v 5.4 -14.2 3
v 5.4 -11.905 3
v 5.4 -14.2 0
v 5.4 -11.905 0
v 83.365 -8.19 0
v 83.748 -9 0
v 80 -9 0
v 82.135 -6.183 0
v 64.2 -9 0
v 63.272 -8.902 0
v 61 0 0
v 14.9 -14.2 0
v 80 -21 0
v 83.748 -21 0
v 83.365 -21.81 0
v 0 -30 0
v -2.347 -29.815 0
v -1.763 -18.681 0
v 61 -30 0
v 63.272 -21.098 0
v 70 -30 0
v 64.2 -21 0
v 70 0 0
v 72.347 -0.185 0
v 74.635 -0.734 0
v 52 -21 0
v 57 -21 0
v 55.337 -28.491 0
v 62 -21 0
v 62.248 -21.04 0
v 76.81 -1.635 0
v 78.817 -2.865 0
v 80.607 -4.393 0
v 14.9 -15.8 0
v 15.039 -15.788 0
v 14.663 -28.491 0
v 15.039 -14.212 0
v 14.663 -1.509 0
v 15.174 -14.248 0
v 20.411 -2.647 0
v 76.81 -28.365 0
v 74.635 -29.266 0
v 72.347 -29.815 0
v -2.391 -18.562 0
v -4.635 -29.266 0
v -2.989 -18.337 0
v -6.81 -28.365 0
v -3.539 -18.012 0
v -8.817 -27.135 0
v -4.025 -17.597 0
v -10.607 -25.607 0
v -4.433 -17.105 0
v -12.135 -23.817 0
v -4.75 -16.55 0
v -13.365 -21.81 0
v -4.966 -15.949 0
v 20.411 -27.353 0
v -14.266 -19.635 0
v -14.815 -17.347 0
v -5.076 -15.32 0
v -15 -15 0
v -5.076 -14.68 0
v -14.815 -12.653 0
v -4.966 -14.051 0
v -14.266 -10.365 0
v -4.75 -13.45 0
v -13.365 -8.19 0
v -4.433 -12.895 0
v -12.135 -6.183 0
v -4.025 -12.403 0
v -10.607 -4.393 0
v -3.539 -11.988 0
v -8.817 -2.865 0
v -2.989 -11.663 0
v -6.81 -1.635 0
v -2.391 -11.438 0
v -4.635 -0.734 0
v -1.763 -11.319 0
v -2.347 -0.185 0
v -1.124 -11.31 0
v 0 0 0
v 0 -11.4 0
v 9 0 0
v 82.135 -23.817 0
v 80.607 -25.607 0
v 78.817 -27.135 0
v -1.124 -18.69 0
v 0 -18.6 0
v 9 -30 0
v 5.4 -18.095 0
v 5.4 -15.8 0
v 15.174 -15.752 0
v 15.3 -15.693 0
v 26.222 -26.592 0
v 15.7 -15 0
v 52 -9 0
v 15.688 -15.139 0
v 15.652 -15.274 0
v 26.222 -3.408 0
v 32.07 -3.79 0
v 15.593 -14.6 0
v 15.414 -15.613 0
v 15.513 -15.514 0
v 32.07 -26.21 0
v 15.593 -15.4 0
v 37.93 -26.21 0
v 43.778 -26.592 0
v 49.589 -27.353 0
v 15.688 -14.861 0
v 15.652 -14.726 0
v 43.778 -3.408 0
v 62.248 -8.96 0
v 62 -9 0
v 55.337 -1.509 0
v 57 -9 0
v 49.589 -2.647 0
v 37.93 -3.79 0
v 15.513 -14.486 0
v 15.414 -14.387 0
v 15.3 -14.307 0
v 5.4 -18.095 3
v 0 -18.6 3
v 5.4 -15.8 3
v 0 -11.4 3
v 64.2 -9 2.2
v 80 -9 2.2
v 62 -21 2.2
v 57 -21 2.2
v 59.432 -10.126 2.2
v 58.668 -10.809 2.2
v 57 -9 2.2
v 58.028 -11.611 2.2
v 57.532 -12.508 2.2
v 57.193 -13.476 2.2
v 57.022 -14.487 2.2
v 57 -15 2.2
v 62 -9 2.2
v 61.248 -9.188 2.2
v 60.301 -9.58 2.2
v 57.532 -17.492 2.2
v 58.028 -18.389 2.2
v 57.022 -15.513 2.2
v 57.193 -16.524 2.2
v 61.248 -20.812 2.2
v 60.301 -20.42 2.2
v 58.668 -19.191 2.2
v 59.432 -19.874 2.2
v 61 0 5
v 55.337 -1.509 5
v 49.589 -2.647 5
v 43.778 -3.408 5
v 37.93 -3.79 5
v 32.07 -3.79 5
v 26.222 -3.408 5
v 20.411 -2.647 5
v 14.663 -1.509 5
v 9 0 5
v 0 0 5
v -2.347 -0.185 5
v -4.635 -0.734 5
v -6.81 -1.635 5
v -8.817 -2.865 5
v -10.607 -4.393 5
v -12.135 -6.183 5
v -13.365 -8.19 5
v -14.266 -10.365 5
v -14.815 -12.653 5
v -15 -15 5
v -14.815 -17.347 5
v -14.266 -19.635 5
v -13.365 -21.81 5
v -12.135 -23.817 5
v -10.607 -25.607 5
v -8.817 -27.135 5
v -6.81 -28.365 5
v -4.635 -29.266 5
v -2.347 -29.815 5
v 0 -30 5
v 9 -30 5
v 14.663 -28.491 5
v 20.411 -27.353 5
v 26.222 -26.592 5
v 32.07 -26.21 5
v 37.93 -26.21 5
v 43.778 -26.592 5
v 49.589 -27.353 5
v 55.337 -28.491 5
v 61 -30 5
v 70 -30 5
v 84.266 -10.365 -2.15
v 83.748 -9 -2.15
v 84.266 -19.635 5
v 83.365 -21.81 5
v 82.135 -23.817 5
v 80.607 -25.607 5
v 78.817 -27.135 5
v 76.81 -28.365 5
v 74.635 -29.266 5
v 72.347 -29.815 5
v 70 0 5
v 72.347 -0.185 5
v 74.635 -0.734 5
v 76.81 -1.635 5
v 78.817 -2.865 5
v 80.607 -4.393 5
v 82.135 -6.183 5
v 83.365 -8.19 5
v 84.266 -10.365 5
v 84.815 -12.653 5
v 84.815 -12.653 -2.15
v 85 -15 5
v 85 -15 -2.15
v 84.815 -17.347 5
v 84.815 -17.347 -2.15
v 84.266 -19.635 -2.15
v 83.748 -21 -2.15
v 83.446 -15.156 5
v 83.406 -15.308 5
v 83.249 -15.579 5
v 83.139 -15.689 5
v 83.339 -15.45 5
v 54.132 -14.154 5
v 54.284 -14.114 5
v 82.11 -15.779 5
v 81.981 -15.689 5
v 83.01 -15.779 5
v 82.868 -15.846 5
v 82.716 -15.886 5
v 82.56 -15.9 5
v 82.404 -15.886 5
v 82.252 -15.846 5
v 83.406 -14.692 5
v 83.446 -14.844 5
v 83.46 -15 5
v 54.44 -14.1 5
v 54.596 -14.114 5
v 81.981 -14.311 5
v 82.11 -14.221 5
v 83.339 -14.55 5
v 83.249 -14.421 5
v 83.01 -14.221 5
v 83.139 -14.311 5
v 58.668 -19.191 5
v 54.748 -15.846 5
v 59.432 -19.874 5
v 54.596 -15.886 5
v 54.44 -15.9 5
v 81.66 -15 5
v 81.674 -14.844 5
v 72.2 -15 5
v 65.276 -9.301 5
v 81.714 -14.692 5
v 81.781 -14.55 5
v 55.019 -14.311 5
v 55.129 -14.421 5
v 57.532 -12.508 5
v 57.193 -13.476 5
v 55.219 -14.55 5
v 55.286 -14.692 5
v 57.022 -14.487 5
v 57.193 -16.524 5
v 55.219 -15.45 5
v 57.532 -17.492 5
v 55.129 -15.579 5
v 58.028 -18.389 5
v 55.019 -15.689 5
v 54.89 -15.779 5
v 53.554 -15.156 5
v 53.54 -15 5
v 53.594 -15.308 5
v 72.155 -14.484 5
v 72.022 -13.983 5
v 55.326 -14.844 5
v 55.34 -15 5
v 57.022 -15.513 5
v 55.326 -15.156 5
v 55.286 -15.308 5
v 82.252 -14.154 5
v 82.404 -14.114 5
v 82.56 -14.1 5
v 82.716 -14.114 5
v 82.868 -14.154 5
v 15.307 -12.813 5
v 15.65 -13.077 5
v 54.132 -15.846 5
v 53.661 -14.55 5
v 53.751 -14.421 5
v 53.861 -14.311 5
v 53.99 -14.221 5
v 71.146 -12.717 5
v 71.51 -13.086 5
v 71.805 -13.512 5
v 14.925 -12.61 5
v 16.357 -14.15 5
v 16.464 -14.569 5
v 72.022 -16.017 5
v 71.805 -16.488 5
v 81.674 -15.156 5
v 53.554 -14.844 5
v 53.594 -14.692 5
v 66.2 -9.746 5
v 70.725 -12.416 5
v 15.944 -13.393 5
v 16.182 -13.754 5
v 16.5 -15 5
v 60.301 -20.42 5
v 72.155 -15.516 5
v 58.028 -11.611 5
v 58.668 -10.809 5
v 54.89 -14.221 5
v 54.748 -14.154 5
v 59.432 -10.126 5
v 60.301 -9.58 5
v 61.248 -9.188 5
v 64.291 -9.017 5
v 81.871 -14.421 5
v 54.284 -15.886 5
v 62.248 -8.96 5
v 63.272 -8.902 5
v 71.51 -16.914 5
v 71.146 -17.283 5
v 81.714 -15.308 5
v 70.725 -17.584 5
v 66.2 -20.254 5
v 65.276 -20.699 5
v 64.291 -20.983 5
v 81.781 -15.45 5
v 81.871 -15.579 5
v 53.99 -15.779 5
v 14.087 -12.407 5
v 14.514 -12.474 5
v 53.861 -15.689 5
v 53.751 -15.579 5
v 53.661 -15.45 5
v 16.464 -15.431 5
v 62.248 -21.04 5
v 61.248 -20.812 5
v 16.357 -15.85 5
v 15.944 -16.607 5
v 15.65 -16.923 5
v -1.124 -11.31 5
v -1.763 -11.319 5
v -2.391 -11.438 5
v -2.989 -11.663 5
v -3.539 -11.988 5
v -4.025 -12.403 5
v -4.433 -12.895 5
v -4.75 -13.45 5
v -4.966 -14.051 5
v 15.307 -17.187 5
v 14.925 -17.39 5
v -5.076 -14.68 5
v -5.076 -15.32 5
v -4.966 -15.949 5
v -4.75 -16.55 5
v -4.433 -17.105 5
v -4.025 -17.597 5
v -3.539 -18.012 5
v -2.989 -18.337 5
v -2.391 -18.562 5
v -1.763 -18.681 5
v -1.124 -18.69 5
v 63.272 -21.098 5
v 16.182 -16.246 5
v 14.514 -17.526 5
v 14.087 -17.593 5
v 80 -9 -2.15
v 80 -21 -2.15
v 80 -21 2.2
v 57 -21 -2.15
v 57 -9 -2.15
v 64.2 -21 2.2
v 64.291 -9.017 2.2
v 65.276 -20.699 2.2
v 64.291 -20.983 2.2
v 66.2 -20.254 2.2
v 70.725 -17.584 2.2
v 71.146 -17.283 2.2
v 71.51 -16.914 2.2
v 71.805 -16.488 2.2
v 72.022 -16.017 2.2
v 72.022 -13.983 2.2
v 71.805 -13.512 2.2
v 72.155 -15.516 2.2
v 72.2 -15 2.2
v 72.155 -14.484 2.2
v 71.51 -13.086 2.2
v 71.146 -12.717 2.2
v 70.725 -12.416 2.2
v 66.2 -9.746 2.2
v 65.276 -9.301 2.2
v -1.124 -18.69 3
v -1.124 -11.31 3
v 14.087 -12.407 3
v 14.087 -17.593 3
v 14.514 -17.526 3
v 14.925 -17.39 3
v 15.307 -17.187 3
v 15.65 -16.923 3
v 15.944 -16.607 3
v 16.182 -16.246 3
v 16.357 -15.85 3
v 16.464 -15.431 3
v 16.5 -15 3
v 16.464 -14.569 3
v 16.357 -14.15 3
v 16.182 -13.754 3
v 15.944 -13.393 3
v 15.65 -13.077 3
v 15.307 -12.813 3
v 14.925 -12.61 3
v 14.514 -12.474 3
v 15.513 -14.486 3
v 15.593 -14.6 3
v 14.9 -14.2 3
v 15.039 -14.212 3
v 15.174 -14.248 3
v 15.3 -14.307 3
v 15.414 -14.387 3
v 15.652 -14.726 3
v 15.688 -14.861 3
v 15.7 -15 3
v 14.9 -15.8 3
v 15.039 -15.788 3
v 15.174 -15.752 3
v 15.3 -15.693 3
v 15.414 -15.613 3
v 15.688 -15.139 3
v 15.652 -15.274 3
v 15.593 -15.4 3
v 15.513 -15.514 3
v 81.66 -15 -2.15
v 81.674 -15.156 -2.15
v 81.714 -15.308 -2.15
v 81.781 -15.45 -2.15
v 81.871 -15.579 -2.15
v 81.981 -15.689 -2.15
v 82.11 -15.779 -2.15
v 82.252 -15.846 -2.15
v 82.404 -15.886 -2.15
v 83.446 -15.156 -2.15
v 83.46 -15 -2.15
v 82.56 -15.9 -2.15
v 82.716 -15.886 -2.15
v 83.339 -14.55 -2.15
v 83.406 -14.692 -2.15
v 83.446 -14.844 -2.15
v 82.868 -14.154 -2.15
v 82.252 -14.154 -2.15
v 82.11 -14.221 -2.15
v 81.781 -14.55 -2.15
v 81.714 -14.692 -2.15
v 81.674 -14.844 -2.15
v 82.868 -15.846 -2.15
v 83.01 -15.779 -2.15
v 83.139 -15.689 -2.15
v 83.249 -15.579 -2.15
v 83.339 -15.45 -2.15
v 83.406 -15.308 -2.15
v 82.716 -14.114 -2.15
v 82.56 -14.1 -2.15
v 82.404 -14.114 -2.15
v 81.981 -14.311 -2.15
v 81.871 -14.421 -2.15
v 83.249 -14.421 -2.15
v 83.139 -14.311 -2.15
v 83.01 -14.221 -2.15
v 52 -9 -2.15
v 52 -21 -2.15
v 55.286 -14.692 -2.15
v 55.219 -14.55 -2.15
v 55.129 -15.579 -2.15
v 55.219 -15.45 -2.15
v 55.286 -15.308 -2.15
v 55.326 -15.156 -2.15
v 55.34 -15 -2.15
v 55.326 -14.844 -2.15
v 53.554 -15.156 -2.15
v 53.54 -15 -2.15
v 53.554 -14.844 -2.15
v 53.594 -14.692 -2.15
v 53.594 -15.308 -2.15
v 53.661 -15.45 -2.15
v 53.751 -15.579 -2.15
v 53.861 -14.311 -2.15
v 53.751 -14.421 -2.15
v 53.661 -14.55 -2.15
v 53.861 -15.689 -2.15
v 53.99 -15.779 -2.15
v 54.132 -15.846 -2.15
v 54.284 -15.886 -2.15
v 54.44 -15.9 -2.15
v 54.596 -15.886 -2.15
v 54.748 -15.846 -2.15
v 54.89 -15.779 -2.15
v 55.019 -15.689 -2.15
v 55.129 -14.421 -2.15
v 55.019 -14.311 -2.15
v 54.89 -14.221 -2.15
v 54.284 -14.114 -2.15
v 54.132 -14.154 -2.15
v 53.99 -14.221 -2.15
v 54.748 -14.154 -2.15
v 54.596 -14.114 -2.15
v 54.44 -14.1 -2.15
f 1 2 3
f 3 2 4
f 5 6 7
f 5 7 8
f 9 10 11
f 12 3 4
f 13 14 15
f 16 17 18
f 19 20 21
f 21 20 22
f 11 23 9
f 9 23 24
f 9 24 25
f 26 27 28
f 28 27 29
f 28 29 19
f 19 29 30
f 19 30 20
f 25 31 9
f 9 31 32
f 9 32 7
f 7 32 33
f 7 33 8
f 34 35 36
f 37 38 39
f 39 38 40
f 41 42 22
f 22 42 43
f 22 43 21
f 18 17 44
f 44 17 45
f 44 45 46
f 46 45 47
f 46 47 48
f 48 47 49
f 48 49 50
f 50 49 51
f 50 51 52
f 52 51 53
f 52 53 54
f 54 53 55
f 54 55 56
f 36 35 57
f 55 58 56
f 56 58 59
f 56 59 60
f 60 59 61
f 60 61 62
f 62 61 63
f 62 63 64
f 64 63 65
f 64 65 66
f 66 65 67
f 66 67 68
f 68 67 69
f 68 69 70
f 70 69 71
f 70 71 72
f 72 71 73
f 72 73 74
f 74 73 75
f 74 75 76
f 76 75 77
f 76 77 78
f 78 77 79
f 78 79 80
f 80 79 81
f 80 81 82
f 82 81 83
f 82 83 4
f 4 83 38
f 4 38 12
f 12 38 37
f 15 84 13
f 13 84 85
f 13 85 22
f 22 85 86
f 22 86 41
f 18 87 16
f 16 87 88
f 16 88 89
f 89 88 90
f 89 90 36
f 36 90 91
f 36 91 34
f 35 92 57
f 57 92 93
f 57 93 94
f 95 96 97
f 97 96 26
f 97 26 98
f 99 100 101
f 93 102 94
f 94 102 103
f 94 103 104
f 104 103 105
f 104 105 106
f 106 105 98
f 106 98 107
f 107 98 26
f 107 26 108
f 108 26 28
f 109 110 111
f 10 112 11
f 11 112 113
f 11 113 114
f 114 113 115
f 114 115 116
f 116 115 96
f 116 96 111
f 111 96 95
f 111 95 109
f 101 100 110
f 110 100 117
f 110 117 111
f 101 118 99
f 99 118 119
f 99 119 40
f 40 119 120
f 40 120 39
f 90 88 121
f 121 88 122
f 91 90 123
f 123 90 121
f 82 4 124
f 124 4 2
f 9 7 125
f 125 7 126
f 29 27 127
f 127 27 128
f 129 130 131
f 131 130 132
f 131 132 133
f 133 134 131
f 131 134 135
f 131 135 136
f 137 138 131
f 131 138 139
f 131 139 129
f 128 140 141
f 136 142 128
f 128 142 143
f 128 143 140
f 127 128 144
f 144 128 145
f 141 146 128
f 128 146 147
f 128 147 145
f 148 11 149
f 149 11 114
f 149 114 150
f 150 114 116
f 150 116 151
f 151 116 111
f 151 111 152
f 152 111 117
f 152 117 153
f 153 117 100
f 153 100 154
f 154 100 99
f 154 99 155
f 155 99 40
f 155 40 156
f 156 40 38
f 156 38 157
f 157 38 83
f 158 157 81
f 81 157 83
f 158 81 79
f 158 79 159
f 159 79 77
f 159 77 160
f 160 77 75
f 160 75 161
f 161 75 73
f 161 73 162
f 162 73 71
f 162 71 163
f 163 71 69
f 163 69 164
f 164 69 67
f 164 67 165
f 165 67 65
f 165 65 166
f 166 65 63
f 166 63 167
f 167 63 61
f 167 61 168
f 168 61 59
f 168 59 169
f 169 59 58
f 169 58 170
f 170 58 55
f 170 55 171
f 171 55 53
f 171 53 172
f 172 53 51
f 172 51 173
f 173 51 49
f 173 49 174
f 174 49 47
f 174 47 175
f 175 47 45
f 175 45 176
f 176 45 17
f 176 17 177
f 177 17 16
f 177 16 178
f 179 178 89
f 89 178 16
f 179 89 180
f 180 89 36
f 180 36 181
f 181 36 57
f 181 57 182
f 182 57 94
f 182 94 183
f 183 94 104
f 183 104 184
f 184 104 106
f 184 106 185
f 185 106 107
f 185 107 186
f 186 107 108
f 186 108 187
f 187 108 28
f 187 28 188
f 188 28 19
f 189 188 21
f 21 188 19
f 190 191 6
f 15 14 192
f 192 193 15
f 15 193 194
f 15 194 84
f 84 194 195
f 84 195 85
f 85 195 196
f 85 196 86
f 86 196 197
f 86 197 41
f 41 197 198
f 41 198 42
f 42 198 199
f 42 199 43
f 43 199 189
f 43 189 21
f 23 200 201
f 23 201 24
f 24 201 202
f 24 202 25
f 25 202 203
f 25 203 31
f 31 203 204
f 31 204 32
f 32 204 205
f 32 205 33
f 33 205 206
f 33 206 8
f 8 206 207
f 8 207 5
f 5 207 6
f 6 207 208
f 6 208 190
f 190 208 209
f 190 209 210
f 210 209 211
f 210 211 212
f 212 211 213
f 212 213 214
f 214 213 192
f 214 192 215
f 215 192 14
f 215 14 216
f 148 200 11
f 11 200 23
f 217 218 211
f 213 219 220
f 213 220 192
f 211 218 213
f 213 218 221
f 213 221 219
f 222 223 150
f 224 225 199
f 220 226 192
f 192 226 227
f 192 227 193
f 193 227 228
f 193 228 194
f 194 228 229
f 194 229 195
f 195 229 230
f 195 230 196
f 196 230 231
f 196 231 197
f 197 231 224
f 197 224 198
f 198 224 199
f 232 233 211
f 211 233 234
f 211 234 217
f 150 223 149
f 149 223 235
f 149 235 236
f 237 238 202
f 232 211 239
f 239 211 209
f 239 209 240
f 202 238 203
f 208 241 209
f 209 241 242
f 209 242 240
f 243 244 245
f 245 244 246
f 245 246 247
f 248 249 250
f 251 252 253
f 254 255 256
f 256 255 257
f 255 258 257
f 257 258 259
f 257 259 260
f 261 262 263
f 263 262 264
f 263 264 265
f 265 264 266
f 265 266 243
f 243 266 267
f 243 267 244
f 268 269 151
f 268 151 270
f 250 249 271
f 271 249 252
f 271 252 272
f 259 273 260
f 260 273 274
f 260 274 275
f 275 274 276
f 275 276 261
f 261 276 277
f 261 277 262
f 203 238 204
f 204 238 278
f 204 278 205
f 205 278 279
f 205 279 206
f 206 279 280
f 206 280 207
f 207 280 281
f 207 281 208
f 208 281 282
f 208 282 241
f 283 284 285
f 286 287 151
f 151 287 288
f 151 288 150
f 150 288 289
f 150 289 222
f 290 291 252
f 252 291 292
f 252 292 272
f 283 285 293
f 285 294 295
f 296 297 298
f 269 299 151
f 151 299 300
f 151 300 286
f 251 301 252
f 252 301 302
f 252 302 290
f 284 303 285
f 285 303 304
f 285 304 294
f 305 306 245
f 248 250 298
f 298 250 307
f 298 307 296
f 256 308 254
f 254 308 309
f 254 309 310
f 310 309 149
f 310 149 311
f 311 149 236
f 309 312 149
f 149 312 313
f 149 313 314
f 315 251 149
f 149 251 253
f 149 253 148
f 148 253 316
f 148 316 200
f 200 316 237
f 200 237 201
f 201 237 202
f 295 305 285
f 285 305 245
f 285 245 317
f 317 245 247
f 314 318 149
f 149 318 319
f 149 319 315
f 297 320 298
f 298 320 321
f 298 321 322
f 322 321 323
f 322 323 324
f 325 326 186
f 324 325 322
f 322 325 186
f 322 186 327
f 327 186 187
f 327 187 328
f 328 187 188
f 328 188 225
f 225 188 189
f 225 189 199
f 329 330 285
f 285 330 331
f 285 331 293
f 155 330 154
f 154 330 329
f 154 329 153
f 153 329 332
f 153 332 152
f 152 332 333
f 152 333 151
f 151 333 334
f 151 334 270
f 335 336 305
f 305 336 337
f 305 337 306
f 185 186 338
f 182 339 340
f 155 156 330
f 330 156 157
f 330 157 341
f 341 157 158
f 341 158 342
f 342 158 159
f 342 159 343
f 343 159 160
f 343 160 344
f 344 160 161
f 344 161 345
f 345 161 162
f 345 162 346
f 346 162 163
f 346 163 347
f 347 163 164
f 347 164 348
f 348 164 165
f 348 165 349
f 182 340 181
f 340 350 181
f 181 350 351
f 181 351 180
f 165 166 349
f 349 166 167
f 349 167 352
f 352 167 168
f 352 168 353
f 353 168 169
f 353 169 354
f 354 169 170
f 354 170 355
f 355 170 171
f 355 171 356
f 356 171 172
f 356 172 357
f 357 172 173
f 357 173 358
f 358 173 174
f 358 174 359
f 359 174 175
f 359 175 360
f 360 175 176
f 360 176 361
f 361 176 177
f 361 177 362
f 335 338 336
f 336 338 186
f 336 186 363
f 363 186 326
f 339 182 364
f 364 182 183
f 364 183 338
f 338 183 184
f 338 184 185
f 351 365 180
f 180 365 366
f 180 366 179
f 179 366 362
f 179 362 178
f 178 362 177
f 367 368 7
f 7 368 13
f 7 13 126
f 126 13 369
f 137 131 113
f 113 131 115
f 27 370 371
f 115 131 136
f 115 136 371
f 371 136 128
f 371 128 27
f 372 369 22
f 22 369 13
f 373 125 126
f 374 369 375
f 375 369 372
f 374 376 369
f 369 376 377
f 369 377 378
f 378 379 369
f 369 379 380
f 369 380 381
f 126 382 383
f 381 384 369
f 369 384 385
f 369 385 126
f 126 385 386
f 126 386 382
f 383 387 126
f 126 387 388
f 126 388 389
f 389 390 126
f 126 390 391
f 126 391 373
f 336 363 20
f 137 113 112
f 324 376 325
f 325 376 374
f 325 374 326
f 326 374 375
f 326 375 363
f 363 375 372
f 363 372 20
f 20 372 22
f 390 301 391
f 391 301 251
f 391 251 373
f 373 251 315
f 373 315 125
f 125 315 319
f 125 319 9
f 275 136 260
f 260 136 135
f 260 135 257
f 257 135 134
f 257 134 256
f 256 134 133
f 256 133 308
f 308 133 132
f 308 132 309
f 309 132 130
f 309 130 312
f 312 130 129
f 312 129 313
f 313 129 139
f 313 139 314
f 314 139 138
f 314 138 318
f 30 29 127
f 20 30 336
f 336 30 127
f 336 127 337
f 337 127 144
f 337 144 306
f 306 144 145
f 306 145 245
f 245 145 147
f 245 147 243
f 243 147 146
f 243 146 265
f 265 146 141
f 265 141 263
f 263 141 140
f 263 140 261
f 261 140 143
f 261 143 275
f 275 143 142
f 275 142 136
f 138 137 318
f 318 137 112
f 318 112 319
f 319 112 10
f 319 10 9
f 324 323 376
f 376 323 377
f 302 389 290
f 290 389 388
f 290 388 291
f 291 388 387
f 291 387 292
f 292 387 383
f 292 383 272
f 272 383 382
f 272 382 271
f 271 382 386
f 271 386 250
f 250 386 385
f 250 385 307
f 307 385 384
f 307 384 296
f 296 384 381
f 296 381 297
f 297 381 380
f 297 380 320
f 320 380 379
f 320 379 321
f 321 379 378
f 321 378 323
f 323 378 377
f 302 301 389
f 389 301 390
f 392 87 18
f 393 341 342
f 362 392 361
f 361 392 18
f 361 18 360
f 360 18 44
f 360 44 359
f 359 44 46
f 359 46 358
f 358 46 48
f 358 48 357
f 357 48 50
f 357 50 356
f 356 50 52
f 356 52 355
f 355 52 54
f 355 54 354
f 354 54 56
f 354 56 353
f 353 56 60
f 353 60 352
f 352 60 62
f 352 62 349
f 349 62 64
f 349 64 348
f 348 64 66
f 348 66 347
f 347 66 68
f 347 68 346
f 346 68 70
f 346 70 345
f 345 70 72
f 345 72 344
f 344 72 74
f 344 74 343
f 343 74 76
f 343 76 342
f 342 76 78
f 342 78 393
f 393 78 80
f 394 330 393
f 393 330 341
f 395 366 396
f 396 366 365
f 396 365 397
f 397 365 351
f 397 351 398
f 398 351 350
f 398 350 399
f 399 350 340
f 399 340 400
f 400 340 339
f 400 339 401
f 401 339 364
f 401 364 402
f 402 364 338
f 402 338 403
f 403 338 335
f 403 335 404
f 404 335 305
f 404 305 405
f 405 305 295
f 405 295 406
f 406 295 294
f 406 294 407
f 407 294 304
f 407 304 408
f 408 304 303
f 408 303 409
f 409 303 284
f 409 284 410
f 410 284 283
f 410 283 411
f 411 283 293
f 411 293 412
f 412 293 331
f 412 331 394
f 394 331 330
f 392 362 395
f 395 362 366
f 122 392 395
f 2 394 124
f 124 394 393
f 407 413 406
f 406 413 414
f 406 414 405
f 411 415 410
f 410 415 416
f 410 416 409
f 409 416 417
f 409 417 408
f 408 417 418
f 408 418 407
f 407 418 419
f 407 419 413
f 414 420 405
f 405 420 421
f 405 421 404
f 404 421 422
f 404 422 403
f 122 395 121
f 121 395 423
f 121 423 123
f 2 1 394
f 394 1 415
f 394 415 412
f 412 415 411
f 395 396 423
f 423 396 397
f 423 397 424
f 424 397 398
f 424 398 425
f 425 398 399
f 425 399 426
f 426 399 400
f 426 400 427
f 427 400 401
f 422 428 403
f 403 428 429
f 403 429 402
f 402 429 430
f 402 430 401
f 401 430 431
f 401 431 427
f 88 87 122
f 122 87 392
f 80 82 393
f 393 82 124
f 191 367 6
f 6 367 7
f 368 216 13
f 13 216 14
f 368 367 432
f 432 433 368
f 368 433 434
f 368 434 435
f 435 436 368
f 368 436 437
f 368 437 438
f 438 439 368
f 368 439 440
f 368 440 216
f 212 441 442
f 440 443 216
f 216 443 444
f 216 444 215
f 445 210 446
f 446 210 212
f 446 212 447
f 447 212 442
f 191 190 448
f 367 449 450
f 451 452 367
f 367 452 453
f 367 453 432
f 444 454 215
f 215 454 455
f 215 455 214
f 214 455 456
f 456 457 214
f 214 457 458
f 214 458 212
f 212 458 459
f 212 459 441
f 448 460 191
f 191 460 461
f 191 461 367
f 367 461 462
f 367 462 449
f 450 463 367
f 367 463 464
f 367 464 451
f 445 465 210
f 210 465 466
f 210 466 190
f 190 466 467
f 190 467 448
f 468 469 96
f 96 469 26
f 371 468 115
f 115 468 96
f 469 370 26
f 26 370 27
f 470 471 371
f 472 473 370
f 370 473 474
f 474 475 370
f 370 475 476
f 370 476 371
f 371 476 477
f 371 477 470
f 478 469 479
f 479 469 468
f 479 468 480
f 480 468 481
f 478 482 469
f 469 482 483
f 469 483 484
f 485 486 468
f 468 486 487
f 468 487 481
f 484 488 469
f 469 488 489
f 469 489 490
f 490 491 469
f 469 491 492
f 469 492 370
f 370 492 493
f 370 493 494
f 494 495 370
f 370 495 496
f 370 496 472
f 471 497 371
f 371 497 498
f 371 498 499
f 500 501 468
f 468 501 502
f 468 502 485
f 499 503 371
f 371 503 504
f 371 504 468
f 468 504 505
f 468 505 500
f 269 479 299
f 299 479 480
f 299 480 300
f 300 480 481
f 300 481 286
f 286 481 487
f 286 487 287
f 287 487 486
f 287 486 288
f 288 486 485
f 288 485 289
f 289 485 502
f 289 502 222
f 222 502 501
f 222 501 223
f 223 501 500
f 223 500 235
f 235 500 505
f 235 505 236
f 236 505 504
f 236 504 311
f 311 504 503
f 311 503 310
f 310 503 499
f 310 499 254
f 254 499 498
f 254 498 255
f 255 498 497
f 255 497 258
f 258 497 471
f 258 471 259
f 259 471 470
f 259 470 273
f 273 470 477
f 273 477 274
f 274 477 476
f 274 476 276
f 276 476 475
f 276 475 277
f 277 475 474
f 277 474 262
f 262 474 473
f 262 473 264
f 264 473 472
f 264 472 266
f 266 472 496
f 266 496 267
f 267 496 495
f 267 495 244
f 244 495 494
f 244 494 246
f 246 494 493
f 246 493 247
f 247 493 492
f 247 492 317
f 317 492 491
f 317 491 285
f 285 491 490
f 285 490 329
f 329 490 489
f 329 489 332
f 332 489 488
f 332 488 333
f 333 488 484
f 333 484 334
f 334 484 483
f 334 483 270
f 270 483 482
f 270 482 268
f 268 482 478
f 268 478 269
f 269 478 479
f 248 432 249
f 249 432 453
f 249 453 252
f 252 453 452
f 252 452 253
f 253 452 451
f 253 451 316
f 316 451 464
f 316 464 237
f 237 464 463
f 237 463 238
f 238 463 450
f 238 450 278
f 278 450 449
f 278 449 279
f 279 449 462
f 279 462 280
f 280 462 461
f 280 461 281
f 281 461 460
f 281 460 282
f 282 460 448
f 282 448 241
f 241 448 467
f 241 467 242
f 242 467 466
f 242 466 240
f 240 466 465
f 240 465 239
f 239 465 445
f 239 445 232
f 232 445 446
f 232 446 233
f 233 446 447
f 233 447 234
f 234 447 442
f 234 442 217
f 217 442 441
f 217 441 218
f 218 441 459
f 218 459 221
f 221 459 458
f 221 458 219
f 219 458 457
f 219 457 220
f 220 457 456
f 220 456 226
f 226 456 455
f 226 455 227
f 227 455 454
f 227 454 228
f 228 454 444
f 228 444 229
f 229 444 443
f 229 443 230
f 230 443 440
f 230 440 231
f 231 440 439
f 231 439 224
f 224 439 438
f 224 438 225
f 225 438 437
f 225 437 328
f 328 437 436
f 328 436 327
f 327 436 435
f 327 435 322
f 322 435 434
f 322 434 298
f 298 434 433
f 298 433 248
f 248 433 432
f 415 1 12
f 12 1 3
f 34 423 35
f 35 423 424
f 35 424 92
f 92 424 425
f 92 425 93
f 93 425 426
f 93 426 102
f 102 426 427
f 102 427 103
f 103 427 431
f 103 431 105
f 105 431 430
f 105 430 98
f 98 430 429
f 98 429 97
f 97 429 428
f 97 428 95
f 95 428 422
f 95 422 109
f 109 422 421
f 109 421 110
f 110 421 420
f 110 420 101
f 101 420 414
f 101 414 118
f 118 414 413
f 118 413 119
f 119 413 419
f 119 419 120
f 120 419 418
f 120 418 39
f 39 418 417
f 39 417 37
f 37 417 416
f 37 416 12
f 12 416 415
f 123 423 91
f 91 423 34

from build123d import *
from build123d.topology import SkipClean

# Parameters (mm, degrees)
BOSS_EXTRUDE1_DEPTH        = 5
CROQUIS3_W                 = 23
CROQUIS3_H                 = 12
CORTAR_EXTRUIR2_DEPTH      = 2.2
CORTAR_EXTRUIR3_DEPTH      = 91.182259896
CORTAR_EXTRUIR3_DEPTH_BACK = 91.182259896
CUT_EXTRUDE4_DEPTH         = 91.277350426
CUT_EXTRUDE4_DEPTH_BACK    = 2
CUT_EXTRUDE6_DEPTH         = 91.188691087
BOSS_EXTRUDE2_START        = 2.15
SKETCH9_W                  = 5
SKETCH9_H                  = 12
BOSS_EXTRUDE2_DEPTH        = 2.15
SKETCH10_R                 = 0.9
CUT_EXTRUDE7_DEPTH         = 8
CUT_EXTRUDE8_DEPTH         = 91.28578238


with BuildPart() as part:
    # Sketch1 → Boss-Extrude1 (new body)
    with BuildSketch(Plane(origin=(0, 0, 0), x_dir=(-1, 0, 0), z_dir=(0, 0, -1))):
        with BuildLine():
            Line((-70, 0), (-61, 0))
            ThreePointArc((-61, 0), (-35, -3.837363086), (-9, 0))
            Line((-9, 0), (0, 0))
            ThreePointArc((0, 0), (15, -15), (0, -30))
            Line((0, -30), (-9, -30))
            ThreePointArc((-9, -30), (-35, -26.162636914), (-61, -30))
            Line((-61, -30), (-70, -30))
            ThreePointArc((-70, -30), (-85, -15), (-70, 0))
        make_face()
        with BuildLine():
            Line((0, -11.4), (-5.4, -11.905))
            Line((-5.4, -11.905), (-5.4, -18.095))
            Line((-5.4, -18.095), (0, -18.6))
            ThreePointArc((0, -18.6), (3.6, -15), (0, -11.4))
        make_face(mode=Mode.SUBTRACT)
    extrude(amount=-BOSS_EXTRUDE1_DEPTH)

    # Croquis3 → Cortar-Extruir2 (cut)
    with BuildSketch(Plane(origin=(0, 0, 0), x_dir=(-1, 0, 0), z_dir=(0, 0, -1))):
        with Locations((-68.5, -15)):
            Rectangle(CROQUIS3_W, CROQUIS3_H)
    extrude(amount=-CORTAR_EXTRUIR2_DEPTH, mode=Mode.SUBTRACT)

    # Croquis4 → Cortar-Extruir3 (cut, two sides: drawn at the far end of the back side and taken through both)
    with BuildSketch(Plane(origin=(0, 0, 2.2), x_dir=(-1, 0, 0), z_dir=(0, 0, -1)).offset(-CORTAR_EXTRUIR3_DEPTH_BACK)):
        with BuildLine():
            Line((-66.2, -9.746429785), (-70.724590164, -12.416276944))
            ThreePointArc((-70.724590164, -12.416276944), (-72.2, -15), (-70.724590164, -17.583723056))
            Line((-70.724590164, -17.583723056), (-66.2, -20.253570215))
            ThreePointArc((-66.2, -20.253570215), (-57, -15), (-66.2, -9.746429785))
        make_face()
    extrude(amount=CORTAR_EXTRUIR3_DEPTH + CORTAR_EXTRUIR3_DEPTH_BACK, mode=Mode.SUBTRACT)

    # Sketch6 → Cut-Extrude4 (cut, two sides: drawn at the far end of the back side and taken through both)
    with BuildSketch(Plane.XY.offset(5).offset(-CUT_EXTRUDE4_DEPTH_BACK)):
        with BuildLine():
            Line((14.08705036, -12.406737159), (-1.12381295, -11.309587495))
            ThreePointArc((-1.12381295, -11.309587495), (-5.09, -15), (-1.12381295, -18.690412505))
            Line((-1.12381295, -18.690412505), (14.08705036, -17.593262841))
            ThreePointArc((14.08705036, -17.593262841), (16.5, -15), (14.08705036, -12.406737159))
        make_face()
    extrude(amount=CUT_EXTRUDE4_DEPTH + CUT_EXTRUDE4_DEPTH_BACK, mode=Mode.SUBTRACT)

    # Sketch8 → Cut-Extrude6 (cut, through all)
    with SkipClean():  # the faces are left unmerged after this step: merging them gives an invalid solid
        with BuildSketch(Plane.XY.offset(3)):
            with BuildLine():
                Line((-1.12381295, -11.309587495), (0, -11.4))
                ThreePointArc((0, -11.4), (-3.6, -15), (0, -18.6))
                Line((0, -18.6), (-1.12381295, -18.690412505))
                ThreePointArc((-1.12381295, -18.690412505), (-5.09, -15), (-1.12381295, -11.309587495))
            make_face()
        extrude(amount=-CUT_EXTRUDE6_DEPTH, mode=Mode.SUBTRACT)

    # Sketch9 → Boss-Extrude2 (add)
    with SkipClean():  # the faces are left unmerged after this step: merging them gives an invalid solid
        with BuildSketch(Plane(origin=(0, 0, 0), x_dir=(-1, 0, 0), z_dir=(0, 0, -1)).offset(BOSS_EXTRUDE2_START)):
            with BuildLine():
                Line((-83.747727085, -21), (-80, -21))
                Line((-80, -21), (-80, -9))
                Line((-80, -9), (-83.747727085, -9))
                ThreePointArc((-83.747727085, -9), (-85, -15), (-83.747727085, -21))
            make_face()
            with Locations((-54.5, -15)):
                Rectangle(SKETCH9_W, SKETCH9_H)
        extrude(amount=-BOSS_EXTRUDE2_DEPTH)

    # Sketch10 → Cut-Extrude7 (cut)
    with SkipClean():  # the faces are left unmerged after this step: merging them gives an invalid solid
        with BuildSketch(Plane(origin=(0, 0, -2.15), x_dir=(-1, 0, 0), z_dir=(0, 0, -1))):
            with Locations((-54.44, -15)):
                Circle(SKETCH10_R)
            with Locations((-82.56, -15)):
                Circle(SKETCH10_R)
        extrude(amount=-CUT_EXTRUDE7_DEPTH, mode=Mode.SUBTRACT)

    # Sketch11 → Cut-Extrude8 (cut, through all)
    with SkipClean():  # the faces are left unmerged after this step: merging them gives an invalid solid
        with BuildSketch(Plane.XY.offset(3)):
            with BuildLine():
                Line((5.4, -14.2), (14.9, -14.2))
                ThreePointArc((14.9, -14.2), (15.7, -15), (14.9, -15.8))
                Line((14.9, -15.8), (5.4, -15.8))
                Line((5.4, -15.8), (5.4, -14.2))
            make_face()
        extrude(amount=-CUT_EXTRUDE8_DEPTH, mode=Mode.SUBTRACT)


solid = part.part
